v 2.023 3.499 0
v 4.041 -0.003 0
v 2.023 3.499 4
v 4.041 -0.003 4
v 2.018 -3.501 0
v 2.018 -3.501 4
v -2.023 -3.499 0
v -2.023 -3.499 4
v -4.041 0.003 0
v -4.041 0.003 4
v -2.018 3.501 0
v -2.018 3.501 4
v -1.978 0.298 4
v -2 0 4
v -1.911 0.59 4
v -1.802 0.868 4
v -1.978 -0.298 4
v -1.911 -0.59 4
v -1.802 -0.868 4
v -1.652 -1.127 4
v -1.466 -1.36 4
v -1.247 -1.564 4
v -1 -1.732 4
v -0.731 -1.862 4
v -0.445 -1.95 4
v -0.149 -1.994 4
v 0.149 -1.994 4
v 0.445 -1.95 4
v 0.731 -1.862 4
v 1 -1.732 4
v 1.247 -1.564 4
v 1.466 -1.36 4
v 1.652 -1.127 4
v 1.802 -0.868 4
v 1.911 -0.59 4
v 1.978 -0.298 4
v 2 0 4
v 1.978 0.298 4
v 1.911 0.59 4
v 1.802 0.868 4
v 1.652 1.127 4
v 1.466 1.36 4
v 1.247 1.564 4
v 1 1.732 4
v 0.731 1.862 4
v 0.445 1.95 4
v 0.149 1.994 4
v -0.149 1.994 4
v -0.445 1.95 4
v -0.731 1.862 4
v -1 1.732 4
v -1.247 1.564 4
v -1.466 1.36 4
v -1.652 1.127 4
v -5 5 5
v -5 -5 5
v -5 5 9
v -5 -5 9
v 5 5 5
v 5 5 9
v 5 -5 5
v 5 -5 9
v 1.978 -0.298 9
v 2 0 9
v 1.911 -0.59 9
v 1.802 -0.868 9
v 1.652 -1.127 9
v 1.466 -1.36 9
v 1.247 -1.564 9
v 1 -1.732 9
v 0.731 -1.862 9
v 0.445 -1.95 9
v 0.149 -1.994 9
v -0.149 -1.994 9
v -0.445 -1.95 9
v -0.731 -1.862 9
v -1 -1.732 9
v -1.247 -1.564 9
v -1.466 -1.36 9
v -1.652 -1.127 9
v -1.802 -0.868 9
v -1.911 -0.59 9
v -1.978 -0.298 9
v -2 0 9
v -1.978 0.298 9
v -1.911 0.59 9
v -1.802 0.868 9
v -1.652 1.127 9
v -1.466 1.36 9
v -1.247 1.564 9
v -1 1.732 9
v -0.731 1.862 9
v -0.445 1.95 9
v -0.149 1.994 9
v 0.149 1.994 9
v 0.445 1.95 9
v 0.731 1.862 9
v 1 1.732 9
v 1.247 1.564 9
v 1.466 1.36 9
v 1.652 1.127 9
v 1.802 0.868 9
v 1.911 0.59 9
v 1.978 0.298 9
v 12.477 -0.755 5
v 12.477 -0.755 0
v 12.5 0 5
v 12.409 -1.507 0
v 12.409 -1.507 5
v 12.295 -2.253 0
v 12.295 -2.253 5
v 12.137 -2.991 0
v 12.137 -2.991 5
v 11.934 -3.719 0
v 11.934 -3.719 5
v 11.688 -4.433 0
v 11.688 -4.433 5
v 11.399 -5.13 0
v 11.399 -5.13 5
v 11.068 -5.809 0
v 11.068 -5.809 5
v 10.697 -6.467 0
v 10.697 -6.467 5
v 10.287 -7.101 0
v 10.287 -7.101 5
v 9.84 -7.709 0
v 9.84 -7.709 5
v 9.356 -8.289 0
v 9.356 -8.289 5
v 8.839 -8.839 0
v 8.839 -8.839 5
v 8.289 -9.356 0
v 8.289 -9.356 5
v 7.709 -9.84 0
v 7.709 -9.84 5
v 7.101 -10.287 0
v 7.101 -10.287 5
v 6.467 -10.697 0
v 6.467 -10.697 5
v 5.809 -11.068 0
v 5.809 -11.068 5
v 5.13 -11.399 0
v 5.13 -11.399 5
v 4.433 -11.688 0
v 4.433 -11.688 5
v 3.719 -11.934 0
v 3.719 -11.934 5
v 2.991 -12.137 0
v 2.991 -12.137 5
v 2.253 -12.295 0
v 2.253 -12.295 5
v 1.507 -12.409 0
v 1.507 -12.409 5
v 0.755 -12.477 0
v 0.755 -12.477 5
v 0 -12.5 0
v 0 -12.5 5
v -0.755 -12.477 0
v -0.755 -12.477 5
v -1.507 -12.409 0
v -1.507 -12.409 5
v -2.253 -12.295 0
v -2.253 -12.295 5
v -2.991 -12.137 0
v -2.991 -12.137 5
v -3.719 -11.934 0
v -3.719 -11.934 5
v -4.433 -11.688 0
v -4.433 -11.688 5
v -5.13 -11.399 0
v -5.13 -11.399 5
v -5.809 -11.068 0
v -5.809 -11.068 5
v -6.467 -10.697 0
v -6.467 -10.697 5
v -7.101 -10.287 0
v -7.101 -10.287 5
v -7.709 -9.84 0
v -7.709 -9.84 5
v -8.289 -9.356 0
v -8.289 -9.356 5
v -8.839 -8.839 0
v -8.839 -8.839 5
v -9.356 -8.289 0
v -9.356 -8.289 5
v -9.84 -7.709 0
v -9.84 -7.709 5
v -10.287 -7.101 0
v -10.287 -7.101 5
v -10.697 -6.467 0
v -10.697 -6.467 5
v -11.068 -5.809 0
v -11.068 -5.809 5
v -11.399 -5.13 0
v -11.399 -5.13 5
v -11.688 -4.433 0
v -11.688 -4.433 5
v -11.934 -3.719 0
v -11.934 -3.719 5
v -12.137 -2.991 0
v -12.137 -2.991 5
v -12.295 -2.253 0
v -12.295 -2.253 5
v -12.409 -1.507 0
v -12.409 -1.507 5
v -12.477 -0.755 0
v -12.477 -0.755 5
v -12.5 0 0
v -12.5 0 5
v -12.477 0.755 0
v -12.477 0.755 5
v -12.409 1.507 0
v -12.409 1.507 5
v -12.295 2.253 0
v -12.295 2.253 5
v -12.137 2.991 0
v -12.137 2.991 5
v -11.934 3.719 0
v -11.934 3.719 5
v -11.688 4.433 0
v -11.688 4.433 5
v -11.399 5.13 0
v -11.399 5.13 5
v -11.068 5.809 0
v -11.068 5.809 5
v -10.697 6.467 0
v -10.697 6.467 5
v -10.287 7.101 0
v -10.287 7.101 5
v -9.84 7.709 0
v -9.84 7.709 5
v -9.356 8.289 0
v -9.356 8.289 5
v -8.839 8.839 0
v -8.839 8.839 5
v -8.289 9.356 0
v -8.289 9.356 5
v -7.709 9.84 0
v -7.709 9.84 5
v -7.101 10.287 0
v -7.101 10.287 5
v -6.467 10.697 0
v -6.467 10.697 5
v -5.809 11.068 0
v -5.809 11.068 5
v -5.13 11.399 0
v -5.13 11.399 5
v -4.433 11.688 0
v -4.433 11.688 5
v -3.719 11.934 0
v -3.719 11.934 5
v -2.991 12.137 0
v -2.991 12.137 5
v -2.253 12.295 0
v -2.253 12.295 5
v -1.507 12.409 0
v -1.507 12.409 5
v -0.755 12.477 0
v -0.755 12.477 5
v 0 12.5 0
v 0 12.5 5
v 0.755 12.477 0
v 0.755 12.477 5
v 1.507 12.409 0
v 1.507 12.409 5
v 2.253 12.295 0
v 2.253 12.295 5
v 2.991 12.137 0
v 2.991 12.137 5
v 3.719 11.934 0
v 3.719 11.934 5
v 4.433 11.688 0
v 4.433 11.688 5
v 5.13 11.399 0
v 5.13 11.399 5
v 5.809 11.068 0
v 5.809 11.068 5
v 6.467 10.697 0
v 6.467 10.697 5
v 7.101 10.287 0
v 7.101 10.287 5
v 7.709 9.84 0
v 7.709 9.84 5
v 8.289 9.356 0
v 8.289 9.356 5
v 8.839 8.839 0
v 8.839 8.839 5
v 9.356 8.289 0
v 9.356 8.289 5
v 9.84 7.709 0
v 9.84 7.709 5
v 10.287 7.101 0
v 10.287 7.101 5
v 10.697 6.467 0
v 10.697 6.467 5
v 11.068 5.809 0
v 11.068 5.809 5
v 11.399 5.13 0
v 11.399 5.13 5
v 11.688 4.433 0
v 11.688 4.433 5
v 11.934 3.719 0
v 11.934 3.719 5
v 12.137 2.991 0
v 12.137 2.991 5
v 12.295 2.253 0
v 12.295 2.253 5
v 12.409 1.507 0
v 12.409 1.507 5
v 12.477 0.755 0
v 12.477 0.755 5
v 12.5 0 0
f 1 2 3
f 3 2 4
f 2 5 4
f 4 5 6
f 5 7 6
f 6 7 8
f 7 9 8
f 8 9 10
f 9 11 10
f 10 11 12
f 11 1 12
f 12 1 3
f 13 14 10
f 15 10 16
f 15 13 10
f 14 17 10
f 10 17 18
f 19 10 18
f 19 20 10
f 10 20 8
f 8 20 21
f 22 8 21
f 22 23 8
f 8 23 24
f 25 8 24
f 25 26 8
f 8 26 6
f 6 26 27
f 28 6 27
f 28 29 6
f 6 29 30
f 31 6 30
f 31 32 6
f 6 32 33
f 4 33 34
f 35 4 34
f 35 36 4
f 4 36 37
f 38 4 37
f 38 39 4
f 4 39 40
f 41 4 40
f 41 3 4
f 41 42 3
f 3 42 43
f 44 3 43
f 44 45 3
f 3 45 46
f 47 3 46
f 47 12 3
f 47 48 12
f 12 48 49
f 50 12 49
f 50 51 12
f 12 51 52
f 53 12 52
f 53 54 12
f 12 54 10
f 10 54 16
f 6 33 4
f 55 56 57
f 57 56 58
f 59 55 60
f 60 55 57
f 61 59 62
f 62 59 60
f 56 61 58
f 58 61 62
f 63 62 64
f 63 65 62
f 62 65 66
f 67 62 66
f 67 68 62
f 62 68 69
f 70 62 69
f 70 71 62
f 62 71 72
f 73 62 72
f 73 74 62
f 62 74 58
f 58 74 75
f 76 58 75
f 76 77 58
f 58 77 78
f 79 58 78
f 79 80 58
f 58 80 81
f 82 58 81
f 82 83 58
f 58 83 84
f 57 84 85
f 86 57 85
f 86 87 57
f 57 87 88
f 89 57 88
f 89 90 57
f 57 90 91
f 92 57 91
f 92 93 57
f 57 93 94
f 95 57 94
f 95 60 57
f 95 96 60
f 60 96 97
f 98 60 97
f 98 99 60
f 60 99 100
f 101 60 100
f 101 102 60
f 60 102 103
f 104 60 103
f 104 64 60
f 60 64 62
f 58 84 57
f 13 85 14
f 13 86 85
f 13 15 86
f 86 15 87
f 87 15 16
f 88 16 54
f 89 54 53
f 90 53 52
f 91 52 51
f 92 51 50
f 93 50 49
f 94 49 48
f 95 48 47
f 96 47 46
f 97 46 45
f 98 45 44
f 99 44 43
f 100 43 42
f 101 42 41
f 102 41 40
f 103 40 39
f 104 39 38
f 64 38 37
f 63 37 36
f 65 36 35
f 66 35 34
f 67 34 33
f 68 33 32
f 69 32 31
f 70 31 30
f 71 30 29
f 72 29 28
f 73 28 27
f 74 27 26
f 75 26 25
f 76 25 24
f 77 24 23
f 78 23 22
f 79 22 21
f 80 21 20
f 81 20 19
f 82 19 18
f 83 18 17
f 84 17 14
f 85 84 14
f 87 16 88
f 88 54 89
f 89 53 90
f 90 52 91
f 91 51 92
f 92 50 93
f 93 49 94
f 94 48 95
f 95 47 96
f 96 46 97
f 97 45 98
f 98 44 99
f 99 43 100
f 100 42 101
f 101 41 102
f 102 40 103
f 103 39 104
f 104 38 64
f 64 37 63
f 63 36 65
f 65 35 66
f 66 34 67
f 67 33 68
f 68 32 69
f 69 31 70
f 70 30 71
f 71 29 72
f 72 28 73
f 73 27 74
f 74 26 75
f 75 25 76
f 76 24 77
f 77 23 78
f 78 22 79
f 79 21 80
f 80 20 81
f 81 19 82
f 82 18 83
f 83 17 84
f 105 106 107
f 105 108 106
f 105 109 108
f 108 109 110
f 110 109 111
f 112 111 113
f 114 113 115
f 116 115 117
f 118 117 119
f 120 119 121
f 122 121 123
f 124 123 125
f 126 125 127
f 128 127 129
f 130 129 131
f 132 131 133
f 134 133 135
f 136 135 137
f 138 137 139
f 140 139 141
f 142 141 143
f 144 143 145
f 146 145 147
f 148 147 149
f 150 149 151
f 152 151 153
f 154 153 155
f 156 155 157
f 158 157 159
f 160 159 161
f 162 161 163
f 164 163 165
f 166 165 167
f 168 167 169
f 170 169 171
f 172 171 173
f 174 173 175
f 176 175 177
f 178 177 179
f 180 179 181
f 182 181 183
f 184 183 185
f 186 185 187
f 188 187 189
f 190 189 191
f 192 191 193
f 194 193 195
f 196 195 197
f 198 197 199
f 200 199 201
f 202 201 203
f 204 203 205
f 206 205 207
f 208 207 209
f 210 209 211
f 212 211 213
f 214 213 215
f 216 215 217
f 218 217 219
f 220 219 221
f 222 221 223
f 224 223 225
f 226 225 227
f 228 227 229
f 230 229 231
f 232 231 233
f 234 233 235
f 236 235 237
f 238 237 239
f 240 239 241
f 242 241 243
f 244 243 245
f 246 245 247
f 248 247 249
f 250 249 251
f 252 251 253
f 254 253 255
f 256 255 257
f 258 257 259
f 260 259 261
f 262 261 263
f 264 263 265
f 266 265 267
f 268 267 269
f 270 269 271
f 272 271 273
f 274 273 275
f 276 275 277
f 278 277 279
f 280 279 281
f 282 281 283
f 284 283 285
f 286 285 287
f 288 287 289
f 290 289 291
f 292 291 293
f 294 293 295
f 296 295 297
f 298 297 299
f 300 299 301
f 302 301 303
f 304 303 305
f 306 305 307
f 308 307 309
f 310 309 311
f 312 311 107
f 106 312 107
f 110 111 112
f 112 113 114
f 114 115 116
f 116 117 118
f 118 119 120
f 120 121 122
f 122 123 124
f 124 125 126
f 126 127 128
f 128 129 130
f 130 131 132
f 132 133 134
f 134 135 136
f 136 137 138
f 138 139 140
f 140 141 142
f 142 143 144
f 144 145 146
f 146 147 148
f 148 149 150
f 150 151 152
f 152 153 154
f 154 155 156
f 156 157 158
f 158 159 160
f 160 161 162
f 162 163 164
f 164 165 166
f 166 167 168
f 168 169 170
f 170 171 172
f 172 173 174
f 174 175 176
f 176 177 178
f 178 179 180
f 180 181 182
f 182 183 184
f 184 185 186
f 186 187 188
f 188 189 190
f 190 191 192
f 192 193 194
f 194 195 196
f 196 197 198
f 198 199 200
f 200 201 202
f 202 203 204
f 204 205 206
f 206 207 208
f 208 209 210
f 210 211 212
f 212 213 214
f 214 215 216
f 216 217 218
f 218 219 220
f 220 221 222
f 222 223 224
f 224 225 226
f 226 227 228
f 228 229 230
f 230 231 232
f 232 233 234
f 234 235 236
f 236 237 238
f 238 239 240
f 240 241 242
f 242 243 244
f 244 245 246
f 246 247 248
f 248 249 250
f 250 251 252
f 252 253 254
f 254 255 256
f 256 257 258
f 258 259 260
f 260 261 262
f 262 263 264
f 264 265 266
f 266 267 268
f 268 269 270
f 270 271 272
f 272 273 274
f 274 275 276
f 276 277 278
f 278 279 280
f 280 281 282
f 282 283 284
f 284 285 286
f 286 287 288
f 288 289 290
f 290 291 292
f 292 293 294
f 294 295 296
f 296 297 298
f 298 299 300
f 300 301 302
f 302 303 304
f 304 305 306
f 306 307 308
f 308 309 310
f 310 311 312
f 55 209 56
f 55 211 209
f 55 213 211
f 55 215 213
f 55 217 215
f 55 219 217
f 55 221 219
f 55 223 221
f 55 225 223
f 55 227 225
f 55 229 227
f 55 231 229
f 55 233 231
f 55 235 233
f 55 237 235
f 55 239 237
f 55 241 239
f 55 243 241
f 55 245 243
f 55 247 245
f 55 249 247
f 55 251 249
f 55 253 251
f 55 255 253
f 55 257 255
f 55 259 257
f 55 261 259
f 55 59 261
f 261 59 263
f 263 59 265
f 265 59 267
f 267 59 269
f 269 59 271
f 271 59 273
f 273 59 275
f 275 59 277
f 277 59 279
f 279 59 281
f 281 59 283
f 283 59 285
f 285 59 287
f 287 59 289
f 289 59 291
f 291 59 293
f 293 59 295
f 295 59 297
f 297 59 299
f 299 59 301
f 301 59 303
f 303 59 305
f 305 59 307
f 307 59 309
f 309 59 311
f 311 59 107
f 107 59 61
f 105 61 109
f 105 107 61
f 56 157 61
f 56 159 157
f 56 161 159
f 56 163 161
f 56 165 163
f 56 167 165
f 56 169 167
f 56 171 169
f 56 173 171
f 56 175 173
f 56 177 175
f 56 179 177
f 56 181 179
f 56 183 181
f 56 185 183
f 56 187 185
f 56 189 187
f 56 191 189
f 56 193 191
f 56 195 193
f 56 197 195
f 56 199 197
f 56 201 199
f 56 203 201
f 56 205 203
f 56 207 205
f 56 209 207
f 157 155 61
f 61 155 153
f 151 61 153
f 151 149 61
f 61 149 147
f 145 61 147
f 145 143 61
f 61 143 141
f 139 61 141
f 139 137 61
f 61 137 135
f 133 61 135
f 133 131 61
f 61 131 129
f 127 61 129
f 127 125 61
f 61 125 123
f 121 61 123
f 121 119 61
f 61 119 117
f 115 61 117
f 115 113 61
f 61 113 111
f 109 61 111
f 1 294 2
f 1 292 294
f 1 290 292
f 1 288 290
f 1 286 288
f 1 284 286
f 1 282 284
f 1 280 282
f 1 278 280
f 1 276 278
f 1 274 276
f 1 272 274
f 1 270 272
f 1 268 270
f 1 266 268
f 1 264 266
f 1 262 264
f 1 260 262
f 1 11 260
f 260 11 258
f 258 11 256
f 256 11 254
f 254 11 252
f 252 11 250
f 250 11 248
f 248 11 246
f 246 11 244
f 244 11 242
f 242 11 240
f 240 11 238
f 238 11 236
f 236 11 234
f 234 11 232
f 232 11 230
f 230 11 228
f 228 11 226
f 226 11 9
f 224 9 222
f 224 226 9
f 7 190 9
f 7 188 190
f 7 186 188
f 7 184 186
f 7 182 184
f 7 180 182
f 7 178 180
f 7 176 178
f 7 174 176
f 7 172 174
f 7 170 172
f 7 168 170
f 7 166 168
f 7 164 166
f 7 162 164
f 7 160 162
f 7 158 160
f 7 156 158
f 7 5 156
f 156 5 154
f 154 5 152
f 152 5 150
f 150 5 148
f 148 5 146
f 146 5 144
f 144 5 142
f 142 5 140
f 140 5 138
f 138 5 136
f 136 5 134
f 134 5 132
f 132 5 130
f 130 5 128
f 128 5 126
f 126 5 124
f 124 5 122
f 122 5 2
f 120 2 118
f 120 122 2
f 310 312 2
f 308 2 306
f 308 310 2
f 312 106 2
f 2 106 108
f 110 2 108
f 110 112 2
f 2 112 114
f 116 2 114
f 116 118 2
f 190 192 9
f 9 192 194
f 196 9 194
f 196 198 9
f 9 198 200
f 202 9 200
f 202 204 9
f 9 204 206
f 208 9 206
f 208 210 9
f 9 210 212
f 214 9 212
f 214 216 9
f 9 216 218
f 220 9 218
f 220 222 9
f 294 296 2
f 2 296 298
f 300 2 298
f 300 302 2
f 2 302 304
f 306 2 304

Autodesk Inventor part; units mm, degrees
ref_plane "YZ Plane" through (0, 0, 0) normal (1, 0, 0) x (0, 1, 0)
ref_plane "XZ Plane" through (0, 0, 0) normal (0, 1, 0) x (-1, 0, 0)
ref_plane "XY Plane" through (0, 0, 0) normal (0, 0, 1) x (1, 0, 0)
sketch "Sketch1" plane through (0, 0, 0) normal (0, 0, 1) x (1, 0, 0)
  circle A0 centre (0, 0) radius 12.5
  dimension "d0" = 25
extrude "Extrusion1" add sketch "Sketch1" along normal blind 5
sketch "Sketch2" plane through (0, 0, 5) normal (0, 0, 1) x (1, 0, 0)
  circle A0 centre (0, 0) radius 12.5 projected
  circle A1 centre (0, 0) radius 2
  dimension "d4" = 4
extrude "Extrusion2" cut sketch "Sketch2" against normal blind 5 contours A1
sketch "Sketch3" plane through (0, 0, 5) normal (0, 0, 1) x (1, 0, 0)
  circle A0 centre (0, 0) radius 2 projected
  line L0 (-5, -5) -> (5, -5)
  line L1 (5, -5) -> (5, 5)
  line L2 (5, 5) -> (-5, 5)
  line L3 (-5, 5) -> (-5, -5)
  dimension "d8" = 10
  dimension "d10" = 10
  dimension "d11" = 5
  dimension "d12" = 5
extrude "Extrusion3" add sketch "Sketch3" along normal blind 4
sketch "Sketch4" plane through (0, 0, 0) normal (0, 0, -1) x (-1, 0, 0)
  circle A0 centre (0, 0) radius 2 projected
  circle A1 centre (0, 0) radius 12.5 projected
  line L0 (-2.023, 3.4987) -> (2.0185, 3.5013)
  line L1 (2.0185, 3.5013) -> (4.0415, 0.0026)
  line L2 (4.0415, 0.0026) -> (2.023, -3.4987)
  line L3 (2.023, -3.4987) -> (-2.0185, -3.5013)
  line L4 (-2.0185, -3.5013) -> (-4.0415, -0.0026)
  line L5 (-4.0415, -0.0026) -> (-2.023, 3.4987)
  dimension "d15" = 7
extrude "Extrusion4" cut sketch "Sketch4" against normal blind 4 contours L0 L1 L2 L3 L4 L5
properties part number "Tension Push washer backplate"
